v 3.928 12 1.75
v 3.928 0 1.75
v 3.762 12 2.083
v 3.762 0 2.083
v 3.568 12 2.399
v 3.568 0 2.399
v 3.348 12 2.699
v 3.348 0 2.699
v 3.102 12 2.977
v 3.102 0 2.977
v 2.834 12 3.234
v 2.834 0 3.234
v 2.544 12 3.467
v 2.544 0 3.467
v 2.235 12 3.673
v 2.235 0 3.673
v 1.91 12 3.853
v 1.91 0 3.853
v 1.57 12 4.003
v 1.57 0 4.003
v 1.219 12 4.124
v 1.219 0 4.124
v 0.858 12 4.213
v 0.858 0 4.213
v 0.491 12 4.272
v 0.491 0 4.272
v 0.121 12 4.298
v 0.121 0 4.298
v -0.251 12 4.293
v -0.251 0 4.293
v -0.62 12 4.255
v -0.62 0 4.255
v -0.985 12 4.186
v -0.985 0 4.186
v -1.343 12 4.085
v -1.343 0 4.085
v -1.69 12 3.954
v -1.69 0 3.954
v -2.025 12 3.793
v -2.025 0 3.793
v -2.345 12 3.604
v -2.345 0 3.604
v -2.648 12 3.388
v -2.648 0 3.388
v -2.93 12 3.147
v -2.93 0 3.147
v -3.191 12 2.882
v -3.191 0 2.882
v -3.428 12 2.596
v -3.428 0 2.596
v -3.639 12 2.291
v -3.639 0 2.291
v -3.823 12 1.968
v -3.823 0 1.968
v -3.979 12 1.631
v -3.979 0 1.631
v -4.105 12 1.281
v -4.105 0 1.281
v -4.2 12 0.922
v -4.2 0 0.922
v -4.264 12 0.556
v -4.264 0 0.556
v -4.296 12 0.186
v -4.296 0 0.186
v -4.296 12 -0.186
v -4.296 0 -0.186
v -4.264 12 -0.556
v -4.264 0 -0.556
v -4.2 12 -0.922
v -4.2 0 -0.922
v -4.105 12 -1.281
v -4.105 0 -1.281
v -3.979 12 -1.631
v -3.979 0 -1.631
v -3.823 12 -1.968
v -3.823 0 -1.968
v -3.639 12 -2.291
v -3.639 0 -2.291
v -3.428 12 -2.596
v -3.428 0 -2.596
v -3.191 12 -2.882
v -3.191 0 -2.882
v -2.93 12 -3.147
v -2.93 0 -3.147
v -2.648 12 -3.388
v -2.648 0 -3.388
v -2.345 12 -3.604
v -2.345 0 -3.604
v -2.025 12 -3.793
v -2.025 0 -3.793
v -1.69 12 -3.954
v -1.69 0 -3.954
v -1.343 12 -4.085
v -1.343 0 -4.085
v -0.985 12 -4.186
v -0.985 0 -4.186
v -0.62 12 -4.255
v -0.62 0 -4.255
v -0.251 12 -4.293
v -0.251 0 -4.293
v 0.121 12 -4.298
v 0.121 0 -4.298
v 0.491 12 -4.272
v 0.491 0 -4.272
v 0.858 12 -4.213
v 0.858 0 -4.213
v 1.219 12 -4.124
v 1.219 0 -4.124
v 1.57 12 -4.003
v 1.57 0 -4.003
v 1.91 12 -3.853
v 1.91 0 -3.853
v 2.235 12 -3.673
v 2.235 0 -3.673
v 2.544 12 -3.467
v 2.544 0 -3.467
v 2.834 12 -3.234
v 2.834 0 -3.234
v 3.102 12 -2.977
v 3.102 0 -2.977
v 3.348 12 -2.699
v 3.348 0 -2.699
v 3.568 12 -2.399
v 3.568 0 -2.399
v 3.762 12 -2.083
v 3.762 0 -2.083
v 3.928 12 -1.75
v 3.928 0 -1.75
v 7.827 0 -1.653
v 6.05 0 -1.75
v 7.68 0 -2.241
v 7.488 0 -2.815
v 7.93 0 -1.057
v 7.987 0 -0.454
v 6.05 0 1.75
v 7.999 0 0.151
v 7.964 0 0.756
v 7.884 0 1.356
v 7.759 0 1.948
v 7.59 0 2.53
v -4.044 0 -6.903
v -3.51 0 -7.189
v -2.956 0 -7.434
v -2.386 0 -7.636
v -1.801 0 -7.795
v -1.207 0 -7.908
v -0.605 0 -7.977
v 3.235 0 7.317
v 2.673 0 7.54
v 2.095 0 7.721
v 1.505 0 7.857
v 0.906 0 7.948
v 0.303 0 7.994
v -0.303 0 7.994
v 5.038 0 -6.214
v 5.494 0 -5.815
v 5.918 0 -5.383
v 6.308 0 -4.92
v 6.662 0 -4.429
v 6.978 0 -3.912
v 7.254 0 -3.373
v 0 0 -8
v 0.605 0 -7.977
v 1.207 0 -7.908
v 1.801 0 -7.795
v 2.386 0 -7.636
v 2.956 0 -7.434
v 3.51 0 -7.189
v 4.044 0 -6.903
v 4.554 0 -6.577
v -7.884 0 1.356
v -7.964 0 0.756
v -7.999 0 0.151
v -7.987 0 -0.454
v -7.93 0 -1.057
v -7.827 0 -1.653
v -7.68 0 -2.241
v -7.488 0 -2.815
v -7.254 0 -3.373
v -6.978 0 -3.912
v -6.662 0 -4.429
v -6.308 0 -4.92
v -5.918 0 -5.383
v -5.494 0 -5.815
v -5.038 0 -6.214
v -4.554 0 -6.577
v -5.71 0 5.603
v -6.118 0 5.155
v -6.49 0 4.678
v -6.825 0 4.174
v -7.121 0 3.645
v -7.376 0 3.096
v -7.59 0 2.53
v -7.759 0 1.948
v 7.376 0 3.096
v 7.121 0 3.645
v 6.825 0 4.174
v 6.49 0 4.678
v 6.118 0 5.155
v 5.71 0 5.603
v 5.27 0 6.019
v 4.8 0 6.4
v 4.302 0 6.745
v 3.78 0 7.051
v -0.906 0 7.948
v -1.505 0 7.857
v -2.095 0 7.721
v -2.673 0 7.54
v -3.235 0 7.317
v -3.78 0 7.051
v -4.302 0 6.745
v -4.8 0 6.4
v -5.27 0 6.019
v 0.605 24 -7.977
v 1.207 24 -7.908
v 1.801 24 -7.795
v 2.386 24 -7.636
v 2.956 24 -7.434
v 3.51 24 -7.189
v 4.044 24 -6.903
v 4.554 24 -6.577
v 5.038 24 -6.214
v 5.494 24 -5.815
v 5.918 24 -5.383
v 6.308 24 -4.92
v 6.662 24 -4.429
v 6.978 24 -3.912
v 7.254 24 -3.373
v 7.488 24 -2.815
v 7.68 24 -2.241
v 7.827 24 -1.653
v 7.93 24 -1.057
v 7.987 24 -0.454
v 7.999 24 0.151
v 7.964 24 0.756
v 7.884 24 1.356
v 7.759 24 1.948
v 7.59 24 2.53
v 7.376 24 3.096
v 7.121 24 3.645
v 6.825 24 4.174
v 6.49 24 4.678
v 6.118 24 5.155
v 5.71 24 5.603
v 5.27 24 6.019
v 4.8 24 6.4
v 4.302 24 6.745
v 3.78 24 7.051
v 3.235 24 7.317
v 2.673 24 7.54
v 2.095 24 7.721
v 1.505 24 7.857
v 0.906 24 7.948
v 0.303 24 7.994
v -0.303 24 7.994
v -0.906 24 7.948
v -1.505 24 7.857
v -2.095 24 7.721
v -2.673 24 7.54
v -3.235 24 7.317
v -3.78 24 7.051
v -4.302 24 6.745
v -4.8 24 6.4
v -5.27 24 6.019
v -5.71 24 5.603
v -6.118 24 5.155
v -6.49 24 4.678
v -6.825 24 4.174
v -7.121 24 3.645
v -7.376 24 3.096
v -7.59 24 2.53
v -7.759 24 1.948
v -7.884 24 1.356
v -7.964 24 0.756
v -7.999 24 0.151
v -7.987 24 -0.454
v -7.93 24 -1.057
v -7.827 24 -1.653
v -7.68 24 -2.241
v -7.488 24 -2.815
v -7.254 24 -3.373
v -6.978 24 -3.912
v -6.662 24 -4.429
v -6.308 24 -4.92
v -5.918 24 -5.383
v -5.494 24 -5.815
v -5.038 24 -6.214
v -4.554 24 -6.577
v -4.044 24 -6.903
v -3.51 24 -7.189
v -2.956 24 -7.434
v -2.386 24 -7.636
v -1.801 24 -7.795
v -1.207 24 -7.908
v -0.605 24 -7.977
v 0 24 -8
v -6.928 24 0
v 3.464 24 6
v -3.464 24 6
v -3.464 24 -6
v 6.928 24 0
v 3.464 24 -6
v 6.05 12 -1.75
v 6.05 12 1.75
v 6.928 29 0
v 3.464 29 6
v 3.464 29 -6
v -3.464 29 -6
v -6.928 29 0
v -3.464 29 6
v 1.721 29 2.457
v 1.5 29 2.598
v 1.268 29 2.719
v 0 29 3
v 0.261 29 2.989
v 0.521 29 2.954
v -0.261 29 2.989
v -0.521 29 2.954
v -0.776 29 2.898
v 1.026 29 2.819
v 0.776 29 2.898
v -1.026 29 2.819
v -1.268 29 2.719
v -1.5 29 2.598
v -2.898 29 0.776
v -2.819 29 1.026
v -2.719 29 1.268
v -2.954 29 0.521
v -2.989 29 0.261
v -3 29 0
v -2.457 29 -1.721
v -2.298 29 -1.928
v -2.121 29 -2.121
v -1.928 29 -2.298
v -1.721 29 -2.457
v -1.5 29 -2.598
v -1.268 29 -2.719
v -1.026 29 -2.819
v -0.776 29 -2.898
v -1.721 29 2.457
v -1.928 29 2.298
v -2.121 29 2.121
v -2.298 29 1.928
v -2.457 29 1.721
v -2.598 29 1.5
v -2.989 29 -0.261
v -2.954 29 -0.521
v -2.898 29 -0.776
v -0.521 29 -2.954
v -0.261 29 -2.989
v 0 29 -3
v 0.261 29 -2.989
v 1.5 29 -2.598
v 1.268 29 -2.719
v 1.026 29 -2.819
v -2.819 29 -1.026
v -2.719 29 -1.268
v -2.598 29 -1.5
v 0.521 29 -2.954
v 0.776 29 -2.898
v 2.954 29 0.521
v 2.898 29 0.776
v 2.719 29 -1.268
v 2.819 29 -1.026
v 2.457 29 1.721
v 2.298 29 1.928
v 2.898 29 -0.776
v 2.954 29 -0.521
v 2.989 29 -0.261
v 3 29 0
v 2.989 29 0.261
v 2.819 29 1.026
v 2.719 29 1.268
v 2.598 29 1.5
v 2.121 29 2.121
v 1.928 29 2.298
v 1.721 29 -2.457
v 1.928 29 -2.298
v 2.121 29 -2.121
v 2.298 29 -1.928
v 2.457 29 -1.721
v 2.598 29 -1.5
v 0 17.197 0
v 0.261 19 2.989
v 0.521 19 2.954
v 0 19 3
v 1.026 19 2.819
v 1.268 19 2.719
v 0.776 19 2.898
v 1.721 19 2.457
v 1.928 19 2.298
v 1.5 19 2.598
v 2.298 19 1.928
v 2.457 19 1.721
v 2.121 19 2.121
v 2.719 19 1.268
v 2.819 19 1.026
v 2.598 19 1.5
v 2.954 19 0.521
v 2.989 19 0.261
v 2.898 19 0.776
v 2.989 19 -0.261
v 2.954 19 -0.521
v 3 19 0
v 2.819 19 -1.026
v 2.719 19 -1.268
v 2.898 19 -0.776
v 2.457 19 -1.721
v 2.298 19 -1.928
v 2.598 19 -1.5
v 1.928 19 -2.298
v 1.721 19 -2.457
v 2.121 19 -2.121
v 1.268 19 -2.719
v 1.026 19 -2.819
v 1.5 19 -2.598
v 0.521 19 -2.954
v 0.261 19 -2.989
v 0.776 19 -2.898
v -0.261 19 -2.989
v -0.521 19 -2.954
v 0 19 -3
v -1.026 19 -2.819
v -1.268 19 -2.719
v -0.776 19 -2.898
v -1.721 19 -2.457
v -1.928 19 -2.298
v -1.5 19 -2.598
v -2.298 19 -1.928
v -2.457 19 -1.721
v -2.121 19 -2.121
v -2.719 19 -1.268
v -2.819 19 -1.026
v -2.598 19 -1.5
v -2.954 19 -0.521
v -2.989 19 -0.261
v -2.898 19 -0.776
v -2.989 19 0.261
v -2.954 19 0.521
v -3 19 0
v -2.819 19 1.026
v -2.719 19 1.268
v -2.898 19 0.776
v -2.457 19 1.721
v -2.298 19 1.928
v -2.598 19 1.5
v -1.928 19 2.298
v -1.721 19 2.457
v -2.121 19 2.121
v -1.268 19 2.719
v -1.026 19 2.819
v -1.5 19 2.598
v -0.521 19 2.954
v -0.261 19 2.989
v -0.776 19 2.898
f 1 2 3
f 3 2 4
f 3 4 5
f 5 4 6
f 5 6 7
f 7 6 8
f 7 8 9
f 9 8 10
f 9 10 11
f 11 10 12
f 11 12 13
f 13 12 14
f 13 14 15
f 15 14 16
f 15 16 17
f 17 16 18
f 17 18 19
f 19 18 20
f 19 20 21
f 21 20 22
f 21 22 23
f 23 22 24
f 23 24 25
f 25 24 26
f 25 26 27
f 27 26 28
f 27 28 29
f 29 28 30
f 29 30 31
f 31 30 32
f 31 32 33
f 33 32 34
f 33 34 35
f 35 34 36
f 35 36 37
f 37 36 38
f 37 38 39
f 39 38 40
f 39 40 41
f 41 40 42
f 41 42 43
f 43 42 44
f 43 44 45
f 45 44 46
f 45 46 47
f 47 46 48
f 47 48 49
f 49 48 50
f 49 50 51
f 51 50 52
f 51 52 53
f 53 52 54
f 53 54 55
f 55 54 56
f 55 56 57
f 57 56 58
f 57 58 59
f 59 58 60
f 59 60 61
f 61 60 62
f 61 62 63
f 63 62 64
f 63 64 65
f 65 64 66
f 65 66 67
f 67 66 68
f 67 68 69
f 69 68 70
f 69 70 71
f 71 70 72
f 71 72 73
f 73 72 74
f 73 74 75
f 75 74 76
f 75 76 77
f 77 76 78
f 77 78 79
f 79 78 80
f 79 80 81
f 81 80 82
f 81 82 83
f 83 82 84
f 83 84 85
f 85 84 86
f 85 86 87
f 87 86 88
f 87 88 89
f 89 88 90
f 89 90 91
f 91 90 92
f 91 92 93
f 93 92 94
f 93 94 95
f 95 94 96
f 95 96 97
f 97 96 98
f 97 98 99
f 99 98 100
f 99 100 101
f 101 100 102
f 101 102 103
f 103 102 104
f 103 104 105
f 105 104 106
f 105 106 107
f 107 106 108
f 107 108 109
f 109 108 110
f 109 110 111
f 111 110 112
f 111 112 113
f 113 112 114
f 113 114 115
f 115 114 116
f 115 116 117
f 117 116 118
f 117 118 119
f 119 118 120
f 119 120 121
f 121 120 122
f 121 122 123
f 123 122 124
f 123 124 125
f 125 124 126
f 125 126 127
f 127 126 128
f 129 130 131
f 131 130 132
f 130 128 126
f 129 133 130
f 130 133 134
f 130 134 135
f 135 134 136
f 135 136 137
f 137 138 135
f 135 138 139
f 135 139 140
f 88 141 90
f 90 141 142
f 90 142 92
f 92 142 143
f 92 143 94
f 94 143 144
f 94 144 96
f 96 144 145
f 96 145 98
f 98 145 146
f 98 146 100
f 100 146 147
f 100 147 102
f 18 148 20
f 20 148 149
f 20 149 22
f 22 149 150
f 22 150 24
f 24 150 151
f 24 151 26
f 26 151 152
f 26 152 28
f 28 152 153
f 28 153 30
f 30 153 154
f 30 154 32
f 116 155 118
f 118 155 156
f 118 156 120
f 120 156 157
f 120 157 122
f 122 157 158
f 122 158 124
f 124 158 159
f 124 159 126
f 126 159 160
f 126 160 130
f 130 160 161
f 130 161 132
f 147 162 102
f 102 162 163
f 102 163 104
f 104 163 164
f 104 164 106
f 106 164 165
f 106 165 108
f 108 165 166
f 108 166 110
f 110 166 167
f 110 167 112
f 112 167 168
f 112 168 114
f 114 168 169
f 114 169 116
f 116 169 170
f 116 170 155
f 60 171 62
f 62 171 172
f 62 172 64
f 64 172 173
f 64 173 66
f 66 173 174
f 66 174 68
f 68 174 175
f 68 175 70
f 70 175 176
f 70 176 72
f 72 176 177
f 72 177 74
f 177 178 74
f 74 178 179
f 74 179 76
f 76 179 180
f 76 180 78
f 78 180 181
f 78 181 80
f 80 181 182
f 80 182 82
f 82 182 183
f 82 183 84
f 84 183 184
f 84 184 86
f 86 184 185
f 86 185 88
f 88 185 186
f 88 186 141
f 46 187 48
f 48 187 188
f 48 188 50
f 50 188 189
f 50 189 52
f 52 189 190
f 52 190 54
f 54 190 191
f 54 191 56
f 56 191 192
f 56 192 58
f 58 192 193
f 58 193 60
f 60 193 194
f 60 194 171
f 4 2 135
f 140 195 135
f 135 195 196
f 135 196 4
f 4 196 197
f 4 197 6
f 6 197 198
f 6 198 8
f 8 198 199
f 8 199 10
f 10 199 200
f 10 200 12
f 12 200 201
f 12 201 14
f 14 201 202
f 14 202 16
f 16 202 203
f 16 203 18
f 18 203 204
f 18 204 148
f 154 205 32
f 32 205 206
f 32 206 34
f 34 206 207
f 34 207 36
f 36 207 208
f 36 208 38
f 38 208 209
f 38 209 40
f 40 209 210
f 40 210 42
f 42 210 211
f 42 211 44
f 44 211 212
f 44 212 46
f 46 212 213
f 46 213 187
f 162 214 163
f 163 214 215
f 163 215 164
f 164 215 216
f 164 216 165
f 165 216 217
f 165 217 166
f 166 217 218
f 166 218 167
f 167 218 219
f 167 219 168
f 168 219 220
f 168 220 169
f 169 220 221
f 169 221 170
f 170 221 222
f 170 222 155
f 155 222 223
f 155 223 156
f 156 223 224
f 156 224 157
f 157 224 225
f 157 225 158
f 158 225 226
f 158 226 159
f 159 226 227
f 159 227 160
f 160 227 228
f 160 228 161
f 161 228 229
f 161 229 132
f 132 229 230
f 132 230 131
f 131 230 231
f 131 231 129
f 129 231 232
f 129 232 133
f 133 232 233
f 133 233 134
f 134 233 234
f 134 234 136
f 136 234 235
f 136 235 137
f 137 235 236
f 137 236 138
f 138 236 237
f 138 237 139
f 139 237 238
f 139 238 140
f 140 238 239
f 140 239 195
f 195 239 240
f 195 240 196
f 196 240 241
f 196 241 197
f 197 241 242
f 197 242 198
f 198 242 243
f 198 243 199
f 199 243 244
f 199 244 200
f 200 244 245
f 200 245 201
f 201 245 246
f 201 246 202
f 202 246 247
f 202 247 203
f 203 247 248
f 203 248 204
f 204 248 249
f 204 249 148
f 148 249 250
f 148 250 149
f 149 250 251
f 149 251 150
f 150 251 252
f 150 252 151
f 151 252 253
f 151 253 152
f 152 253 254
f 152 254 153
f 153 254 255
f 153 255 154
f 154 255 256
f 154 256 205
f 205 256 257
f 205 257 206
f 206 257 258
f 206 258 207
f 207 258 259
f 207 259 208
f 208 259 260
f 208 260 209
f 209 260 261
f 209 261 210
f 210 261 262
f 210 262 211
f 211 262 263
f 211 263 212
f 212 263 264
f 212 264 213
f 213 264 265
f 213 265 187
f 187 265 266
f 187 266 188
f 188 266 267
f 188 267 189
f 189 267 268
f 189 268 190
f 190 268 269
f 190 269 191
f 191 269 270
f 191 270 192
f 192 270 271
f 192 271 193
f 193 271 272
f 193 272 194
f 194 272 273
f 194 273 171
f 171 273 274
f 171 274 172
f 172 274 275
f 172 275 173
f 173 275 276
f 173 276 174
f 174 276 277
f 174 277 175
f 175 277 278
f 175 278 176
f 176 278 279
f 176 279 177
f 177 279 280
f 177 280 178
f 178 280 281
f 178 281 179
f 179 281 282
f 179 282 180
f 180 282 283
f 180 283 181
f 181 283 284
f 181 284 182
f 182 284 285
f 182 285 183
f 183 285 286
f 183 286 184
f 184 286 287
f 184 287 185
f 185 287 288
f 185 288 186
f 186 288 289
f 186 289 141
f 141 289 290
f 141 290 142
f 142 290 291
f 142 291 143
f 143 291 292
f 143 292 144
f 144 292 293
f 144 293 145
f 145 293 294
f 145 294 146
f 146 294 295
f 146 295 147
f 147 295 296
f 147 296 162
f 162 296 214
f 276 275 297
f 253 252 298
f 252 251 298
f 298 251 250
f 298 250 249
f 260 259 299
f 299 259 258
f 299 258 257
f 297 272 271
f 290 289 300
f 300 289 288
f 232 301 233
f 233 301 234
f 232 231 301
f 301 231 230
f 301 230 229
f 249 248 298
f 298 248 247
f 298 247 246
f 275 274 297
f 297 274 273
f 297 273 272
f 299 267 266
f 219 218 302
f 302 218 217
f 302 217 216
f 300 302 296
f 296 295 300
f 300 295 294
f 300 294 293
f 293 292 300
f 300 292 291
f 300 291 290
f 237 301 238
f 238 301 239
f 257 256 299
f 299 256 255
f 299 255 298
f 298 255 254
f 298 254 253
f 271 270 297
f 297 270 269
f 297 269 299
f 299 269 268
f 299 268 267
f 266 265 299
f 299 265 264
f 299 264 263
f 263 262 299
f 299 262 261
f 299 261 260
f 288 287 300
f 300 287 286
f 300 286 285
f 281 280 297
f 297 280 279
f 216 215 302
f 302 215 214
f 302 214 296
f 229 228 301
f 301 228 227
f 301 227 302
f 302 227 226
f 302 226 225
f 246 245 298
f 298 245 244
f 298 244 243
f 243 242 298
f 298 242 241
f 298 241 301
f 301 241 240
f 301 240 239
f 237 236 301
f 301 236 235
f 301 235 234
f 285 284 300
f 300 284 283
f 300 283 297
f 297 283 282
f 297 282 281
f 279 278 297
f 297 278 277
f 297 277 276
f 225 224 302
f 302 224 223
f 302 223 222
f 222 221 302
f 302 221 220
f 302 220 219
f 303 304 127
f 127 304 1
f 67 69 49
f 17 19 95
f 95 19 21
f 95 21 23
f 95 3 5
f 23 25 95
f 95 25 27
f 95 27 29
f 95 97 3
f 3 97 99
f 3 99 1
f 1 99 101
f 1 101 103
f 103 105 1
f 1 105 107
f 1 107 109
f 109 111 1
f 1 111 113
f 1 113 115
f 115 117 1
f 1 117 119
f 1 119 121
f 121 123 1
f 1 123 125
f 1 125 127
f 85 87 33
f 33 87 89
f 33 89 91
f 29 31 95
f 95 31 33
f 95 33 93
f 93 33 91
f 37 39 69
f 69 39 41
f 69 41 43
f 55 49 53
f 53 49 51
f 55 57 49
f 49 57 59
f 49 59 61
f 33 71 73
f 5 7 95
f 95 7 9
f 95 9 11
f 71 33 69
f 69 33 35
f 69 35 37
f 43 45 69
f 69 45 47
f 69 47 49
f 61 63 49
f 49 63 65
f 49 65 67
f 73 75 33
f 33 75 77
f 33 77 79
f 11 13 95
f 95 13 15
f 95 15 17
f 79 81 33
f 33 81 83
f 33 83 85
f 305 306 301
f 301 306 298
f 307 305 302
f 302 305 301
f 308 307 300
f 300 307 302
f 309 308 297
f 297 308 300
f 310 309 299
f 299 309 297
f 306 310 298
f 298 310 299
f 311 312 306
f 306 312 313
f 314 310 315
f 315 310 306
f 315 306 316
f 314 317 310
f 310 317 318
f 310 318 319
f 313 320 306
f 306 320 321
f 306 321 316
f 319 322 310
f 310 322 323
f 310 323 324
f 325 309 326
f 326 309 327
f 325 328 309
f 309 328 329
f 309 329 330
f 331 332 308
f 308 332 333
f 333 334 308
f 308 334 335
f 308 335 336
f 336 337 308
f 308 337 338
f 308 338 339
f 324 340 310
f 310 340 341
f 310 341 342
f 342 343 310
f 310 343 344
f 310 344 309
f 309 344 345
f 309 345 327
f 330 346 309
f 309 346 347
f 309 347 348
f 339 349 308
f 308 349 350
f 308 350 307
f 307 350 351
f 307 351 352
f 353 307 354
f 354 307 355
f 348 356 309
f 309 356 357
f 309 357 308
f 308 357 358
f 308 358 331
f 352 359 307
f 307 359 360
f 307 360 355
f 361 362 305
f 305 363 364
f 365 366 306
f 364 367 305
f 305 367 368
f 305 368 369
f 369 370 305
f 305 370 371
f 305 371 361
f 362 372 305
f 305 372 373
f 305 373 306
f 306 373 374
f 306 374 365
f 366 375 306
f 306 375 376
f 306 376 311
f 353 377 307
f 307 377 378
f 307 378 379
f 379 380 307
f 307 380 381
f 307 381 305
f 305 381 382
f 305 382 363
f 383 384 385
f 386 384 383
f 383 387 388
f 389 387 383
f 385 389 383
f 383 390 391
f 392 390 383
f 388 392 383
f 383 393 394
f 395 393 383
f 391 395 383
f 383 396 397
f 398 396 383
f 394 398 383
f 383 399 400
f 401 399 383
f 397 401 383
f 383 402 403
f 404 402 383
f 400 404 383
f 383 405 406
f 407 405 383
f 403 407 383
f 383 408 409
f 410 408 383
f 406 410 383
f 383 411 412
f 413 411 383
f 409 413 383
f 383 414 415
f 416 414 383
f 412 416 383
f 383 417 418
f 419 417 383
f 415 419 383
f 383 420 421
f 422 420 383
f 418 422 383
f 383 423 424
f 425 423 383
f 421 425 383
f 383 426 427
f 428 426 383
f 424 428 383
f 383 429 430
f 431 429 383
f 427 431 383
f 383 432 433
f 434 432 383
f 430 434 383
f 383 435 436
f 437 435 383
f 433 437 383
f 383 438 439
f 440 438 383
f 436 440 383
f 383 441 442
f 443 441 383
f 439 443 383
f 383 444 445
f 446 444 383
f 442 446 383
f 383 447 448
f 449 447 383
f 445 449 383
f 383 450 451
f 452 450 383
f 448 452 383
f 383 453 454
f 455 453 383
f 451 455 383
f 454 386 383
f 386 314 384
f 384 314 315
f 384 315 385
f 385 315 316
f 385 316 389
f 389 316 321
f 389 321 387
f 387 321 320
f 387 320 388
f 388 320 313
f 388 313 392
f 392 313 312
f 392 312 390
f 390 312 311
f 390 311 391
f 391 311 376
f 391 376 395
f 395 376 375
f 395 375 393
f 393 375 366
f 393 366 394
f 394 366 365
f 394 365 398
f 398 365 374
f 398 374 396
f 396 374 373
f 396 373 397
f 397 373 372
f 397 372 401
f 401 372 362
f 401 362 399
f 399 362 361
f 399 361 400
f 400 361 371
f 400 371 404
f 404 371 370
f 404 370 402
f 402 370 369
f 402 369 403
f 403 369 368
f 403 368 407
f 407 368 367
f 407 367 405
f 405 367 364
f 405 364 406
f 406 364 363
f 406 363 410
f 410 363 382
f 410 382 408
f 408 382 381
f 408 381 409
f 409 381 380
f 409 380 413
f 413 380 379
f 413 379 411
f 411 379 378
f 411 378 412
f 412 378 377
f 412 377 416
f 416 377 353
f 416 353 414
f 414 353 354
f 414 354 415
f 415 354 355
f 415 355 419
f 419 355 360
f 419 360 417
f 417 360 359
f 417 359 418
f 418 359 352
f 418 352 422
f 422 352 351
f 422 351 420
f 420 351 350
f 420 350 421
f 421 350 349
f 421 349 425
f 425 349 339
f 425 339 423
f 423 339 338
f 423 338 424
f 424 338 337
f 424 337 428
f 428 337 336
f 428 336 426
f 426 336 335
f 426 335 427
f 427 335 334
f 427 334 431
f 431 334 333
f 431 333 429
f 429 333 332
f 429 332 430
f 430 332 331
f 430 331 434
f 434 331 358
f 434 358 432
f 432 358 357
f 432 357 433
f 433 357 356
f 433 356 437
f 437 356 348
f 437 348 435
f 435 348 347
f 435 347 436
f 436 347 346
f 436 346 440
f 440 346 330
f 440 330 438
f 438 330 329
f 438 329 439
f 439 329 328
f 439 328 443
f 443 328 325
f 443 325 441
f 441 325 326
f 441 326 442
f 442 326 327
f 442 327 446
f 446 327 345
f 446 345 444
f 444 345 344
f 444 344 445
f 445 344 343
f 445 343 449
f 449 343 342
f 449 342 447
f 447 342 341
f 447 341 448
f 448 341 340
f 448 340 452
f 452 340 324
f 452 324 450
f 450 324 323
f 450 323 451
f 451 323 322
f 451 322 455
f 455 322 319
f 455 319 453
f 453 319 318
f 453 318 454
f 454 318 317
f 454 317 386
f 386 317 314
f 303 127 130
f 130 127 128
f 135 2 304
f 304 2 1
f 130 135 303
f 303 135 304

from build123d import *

# Parameters (mm, degrees)
SKETCH1_W                 = 3.7
SKETCH1_H                 = 12
SKETCH1_W_2               = 8
BOSS_EXTRUDE1_DEPTH       = 5
F_6_0MM_DOWEL_HOLE1_D     = 6
F_6_0MM_DOWEL_HOLE1_DEPTH = 10
F_6_0MM_DOWEL_HOLE1_TIP   = 1.802581857
CUT_EXTRUDE1_START        = -12
SKETCH5_W                 = 3.5
SKETCH5_H                 = 3.5
CUT_EXTRUDE1_DEPTH        = 12


with BuildPart() as part:
    # Sketch1 → Revolve1 (revolve)
    with BuildSketch(Plane.XY, mode=Mode.PRIVATE) as revolve1_sk:
        with Locations((6.15, 6)):
            Rectangle(SKETCH1_W, SKETCH1_H)
        with Locations((4, 18)):
            Rectangle(SKETCH1_W_2, SKETCH1_H)
    revolve(revolve1_sk.sketch.rotate(Axis((0, 0, 0), (0, 1, 0)), 90), axis=Axis((0, 0, 0), (0, 1, 0)))

    # Sketch2 → Boss-Extrude1 (add)
    with BuildSketch(Plane(origin=(0, 24, 0), x_dir=(1, 0, 0), z_dir=(0, 1, 0))):
        Polygon((6.92820323, 0), (3.464101615, 6), (-3.464101615, 6), (-6.92820323, 0), (-3.464101615, -6), (3.464101615, -6), align=None)
    extrude(amount=BOSS_EXTRUDE1_DEPTH)

    # Ø6.0mm Dowel Hole1
    with Locations(Plane(origin=(0, 29, 0), x_dir=(1, 0, 0), z_dir=(0, 1, 0))):
        with Locations((0, 0)):
            Hole(F_6_0MM_DOWEL_HOLE1_D / 2, depth=F_6_0MM_DOWEL_HOLE1_DEPTH)
            with Locations((0, 0, -(F_6_0MM_DOWEL_HOLE1_DEPTH + F_6_0MM_DOWEL_HOLE1_TIP / 2))):  # 118° drill point
                Cone(0, F_6_0MM_DOWEL_HOLE1_D / 2, F_6_0MM_DOWEL_HOLE1_TIP, mode=Mode.SUBTRACT)

    # Sketch5 → Cut-Extrude1 (cut)
    with BuildSketch(Plane.XZ.offset(CUT_EXTRUDE1_START)):
        with Locations((4.3, 0)):
            Rectangle(SKETCH5_W, SKETCH5_H)
    extrude(amount=CUT_EXTRUDE1_DEPTH, mode=Mode.SUBTRACT)


solid = part.part
